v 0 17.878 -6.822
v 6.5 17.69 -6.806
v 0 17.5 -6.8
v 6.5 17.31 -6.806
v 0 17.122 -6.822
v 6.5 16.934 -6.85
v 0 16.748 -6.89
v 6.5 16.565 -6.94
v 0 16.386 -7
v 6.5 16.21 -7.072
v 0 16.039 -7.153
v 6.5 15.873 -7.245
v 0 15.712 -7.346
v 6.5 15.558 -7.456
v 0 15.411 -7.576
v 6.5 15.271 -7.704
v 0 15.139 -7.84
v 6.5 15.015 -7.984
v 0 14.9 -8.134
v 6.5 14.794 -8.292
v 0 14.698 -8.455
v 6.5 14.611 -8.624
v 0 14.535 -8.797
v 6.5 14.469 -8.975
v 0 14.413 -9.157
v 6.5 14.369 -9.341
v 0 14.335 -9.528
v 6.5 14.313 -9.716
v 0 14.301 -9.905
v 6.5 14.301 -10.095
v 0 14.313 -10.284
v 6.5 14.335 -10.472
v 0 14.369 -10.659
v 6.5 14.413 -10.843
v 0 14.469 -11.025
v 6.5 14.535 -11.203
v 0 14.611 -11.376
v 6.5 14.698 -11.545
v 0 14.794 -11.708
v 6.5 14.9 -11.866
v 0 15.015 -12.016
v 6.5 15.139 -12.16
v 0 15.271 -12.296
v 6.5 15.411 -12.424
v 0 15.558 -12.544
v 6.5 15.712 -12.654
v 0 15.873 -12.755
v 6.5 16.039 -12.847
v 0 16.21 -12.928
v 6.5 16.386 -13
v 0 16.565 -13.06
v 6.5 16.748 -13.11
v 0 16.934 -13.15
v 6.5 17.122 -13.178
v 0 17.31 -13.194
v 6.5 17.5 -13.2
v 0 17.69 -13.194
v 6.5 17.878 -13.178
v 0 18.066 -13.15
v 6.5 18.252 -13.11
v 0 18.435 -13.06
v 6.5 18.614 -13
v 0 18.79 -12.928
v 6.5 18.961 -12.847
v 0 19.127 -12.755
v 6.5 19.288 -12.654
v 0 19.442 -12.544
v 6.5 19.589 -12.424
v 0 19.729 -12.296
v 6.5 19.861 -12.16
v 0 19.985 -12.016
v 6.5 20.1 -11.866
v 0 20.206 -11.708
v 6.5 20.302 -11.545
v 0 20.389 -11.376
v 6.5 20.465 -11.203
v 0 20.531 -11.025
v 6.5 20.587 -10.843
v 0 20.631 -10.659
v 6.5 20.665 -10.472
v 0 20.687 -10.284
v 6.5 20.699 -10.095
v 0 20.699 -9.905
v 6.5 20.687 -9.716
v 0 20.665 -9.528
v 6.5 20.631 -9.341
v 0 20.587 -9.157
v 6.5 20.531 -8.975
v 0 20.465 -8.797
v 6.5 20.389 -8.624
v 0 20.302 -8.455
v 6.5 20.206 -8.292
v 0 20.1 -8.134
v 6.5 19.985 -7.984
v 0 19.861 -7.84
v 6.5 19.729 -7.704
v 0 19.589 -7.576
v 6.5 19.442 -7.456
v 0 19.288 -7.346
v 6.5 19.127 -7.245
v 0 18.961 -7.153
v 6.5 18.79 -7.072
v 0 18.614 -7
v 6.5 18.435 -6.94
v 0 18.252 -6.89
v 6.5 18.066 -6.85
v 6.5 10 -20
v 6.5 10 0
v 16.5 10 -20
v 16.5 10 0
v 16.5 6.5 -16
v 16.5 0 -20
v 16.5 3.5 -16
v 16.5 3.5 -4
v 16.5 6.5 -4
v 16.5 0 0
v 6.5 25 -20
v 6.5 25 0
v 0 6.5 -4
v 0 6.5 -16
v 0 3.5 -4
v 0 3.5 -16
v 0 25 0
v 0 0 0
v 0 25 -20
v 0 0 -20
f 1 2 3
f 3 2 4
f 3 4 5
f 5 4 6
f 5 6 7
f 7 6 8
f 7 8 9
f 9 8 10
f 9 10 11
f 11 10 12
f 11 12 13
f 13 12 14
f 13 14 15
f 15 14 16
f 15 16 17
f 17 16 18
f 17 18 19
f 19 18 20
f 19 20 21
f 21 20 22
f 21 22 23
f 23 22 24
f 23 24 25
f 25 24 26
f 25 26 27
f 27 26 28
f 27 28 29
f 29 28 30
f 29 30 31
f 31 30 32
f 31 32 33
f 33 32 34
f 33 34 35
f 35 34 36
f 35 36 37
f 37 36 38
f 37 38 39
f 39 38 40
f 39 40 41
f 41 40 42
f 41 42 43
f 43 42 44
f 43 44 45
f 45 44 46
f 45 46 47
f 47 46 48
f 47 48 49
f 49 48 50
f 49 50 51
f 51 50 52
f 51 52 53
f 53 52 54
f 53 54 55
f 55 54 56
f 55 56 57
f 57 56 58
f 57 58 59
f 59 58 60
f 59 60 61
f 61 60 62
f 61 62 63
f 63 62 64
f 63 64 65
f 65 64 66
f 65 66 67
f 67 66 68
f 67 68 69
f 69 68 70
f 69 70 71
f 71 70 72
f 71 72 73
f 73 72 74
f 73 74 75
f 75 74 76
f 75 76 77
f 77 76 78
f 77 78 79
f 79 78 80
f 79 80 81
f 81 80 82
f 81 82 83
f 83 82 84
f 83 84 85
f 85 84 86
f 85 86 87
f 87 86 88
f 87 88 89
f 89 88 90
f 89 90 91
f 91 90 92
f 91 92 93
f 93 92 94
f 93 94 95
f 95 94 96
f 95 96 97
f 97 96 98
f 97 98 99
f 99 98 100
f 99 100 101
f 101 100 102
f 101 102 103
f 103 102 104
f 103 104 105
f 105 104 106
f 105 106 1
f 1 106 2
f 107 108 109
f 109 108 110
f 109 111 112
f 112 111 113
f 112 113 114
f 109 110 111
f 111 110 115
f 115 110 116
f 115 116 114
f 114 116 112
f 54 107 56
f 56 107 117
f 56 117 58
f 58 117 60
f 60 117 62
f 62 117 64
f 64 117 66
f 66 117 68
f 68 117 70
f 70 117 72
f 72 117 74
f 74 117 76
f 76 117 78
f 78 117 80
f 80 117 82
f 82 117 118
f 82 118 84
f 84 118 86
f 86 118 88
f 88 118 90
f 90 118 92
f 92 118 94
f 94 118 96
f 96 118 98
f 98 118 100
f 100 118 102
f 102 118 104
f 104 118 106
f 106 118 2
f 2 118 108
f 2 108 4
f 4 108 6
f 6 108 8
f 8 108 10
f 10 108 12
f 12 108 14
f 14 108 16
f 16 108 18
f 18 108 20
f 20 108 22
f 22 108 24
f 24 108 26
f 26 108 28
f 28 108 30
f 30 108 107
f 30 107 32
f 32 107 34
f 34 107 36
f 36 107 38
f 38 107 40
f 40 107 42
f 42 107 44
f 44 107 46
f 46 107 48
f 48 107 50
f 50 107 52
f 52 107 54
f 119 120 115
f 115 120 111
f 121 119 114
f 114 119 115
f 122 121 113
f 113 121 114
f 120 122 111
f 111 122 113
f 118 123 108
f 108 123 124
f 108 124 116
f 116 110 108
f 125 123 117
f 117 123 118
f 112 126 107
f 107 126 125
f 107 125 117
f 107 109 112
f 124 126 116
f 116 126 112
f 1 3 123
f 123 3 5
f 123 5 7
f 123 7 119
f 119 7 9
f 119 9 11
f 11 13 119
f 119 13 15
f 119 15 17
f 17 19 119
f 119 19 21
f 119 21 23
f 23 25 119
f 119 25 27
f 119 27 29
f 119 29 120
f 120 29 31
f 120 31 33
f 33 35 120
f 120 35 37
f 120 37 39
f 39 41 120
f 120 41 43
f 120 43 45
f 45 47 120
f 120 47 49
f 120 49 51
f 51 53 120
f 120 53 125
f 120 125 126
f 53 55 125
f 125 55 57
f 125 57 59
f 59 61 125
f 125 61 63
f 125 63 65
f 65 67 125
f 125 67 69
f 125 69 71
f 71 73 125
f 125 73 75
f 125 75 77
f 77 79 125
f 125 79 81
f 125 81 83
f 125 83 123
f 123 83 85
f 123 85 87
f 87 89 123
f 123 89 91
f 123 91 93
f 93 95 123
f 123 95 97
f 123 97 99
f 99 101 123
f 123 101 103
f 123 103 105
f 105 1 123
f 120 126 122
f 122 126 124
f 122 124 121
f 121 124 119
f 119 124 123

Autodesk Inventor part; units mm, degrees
ref_plane "YZ Plane" through (0, 0, 0) normal (1, 0, 0) x (0, 1, 0)
ref_plane "XZ Plane" through (0, 0, 0) normal (0, 1, 0) x (-1, 0, 0)
ref_plane "XY Plane" through (0, 0, 0) normal (0, 0, 1) x (1, 0, 0)
sketch "Sketch1" plane through (0, 0, 0) normal (1, 0, 0) x (0, 1, 0)
  line L0 (0, 0) -> (25, 0)
  line L1 (25, 0) -> (25, -20)
  line L2 (25, -20) -> (0, -20)
  line L3 (0, -20) -> (0, 0)
  line L4 (3.5, -4) -> (6.5, -4)
  line L5 (6.5, -4) -> (6.5, -16)
  line L6 (6.5, -16) -> (3.5, -16)
  line L7 (3.5, -16) -> (3.5, -4)
  dimension "d0" = 25
  dimension "d1" = 20
  dimension "d2" = 3
  dimension "d3" = 12
extrude "Extrusion1" add sketch "Sketch1" along normal blind 6.5
sketch "Sketch2" plane through (6.5, 0, 0) normal (1, 0, 0) x (0, 0, -1)
  line L0 (0, 25) -> (0, 0) projected
  line L1 (20, 0) -> (20, 25) projected
  line L2 (0, 0) -> (20, 0)
  line L3 (20, 0) -> (20, 10)
  line L4 (20, 10) -> (0, 10)
  line L5 (0, 10) -> (0, 0)
  line L6 (4, 3.5) -> (4, 6.5) projected
  line L7 (4, 6.5) -> (16, 6.5) projected
  line L8 (4, 3.5) -> (16, 3.5)
  line L9 (16, 3.5) -> (16, 6.5)
  line L10 (16, 6.5) -> (4, 6.5)
  line L11 (4, 6.5) -> (4, 3.5)
  dimension "d6" = 10
extrude "Extrusion2" add sketch "Sketch2" along normal blind 10
sketch "Sketch3" plane through (6.5, 0, 0) normal (1, 0, 0) x (0, 0, -1)
  line L0 (20, 0) -> (20, 25) construction
  line L1 (0, 10) -> (0, 0) construction
  line L2 (20, 25) -> (0, 10) construction
  circle A0 centre (10, 17.5) radius 3.2
  dimension "d9" = 6.4
extrude "Extrusion3" cut sketch "Sketch3" against normal blind 10
properties part number "_3DPrint"
